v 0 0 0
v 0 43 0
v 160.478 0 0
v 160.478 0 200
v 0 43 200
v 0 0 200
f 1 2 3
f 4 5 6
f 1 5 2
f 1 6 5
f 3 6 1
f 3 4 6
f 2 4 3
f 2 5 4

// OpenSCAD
// Constants
HEIGHT = 43; // 4.3cm in mm
ANGLE = 15; // degrees
WIDTH = 200; // 20cm in mm

// Calculate base length from height and angle
base_length = HEIGHT / tan(ANGLE);

// Create rectangular triangular prism (ramp)
linear_extrude(height = WIDTH) {
    polygon([
        [0, 0],
        [base_length, 0],
        [0, HEIGHT]
    ]);
}
